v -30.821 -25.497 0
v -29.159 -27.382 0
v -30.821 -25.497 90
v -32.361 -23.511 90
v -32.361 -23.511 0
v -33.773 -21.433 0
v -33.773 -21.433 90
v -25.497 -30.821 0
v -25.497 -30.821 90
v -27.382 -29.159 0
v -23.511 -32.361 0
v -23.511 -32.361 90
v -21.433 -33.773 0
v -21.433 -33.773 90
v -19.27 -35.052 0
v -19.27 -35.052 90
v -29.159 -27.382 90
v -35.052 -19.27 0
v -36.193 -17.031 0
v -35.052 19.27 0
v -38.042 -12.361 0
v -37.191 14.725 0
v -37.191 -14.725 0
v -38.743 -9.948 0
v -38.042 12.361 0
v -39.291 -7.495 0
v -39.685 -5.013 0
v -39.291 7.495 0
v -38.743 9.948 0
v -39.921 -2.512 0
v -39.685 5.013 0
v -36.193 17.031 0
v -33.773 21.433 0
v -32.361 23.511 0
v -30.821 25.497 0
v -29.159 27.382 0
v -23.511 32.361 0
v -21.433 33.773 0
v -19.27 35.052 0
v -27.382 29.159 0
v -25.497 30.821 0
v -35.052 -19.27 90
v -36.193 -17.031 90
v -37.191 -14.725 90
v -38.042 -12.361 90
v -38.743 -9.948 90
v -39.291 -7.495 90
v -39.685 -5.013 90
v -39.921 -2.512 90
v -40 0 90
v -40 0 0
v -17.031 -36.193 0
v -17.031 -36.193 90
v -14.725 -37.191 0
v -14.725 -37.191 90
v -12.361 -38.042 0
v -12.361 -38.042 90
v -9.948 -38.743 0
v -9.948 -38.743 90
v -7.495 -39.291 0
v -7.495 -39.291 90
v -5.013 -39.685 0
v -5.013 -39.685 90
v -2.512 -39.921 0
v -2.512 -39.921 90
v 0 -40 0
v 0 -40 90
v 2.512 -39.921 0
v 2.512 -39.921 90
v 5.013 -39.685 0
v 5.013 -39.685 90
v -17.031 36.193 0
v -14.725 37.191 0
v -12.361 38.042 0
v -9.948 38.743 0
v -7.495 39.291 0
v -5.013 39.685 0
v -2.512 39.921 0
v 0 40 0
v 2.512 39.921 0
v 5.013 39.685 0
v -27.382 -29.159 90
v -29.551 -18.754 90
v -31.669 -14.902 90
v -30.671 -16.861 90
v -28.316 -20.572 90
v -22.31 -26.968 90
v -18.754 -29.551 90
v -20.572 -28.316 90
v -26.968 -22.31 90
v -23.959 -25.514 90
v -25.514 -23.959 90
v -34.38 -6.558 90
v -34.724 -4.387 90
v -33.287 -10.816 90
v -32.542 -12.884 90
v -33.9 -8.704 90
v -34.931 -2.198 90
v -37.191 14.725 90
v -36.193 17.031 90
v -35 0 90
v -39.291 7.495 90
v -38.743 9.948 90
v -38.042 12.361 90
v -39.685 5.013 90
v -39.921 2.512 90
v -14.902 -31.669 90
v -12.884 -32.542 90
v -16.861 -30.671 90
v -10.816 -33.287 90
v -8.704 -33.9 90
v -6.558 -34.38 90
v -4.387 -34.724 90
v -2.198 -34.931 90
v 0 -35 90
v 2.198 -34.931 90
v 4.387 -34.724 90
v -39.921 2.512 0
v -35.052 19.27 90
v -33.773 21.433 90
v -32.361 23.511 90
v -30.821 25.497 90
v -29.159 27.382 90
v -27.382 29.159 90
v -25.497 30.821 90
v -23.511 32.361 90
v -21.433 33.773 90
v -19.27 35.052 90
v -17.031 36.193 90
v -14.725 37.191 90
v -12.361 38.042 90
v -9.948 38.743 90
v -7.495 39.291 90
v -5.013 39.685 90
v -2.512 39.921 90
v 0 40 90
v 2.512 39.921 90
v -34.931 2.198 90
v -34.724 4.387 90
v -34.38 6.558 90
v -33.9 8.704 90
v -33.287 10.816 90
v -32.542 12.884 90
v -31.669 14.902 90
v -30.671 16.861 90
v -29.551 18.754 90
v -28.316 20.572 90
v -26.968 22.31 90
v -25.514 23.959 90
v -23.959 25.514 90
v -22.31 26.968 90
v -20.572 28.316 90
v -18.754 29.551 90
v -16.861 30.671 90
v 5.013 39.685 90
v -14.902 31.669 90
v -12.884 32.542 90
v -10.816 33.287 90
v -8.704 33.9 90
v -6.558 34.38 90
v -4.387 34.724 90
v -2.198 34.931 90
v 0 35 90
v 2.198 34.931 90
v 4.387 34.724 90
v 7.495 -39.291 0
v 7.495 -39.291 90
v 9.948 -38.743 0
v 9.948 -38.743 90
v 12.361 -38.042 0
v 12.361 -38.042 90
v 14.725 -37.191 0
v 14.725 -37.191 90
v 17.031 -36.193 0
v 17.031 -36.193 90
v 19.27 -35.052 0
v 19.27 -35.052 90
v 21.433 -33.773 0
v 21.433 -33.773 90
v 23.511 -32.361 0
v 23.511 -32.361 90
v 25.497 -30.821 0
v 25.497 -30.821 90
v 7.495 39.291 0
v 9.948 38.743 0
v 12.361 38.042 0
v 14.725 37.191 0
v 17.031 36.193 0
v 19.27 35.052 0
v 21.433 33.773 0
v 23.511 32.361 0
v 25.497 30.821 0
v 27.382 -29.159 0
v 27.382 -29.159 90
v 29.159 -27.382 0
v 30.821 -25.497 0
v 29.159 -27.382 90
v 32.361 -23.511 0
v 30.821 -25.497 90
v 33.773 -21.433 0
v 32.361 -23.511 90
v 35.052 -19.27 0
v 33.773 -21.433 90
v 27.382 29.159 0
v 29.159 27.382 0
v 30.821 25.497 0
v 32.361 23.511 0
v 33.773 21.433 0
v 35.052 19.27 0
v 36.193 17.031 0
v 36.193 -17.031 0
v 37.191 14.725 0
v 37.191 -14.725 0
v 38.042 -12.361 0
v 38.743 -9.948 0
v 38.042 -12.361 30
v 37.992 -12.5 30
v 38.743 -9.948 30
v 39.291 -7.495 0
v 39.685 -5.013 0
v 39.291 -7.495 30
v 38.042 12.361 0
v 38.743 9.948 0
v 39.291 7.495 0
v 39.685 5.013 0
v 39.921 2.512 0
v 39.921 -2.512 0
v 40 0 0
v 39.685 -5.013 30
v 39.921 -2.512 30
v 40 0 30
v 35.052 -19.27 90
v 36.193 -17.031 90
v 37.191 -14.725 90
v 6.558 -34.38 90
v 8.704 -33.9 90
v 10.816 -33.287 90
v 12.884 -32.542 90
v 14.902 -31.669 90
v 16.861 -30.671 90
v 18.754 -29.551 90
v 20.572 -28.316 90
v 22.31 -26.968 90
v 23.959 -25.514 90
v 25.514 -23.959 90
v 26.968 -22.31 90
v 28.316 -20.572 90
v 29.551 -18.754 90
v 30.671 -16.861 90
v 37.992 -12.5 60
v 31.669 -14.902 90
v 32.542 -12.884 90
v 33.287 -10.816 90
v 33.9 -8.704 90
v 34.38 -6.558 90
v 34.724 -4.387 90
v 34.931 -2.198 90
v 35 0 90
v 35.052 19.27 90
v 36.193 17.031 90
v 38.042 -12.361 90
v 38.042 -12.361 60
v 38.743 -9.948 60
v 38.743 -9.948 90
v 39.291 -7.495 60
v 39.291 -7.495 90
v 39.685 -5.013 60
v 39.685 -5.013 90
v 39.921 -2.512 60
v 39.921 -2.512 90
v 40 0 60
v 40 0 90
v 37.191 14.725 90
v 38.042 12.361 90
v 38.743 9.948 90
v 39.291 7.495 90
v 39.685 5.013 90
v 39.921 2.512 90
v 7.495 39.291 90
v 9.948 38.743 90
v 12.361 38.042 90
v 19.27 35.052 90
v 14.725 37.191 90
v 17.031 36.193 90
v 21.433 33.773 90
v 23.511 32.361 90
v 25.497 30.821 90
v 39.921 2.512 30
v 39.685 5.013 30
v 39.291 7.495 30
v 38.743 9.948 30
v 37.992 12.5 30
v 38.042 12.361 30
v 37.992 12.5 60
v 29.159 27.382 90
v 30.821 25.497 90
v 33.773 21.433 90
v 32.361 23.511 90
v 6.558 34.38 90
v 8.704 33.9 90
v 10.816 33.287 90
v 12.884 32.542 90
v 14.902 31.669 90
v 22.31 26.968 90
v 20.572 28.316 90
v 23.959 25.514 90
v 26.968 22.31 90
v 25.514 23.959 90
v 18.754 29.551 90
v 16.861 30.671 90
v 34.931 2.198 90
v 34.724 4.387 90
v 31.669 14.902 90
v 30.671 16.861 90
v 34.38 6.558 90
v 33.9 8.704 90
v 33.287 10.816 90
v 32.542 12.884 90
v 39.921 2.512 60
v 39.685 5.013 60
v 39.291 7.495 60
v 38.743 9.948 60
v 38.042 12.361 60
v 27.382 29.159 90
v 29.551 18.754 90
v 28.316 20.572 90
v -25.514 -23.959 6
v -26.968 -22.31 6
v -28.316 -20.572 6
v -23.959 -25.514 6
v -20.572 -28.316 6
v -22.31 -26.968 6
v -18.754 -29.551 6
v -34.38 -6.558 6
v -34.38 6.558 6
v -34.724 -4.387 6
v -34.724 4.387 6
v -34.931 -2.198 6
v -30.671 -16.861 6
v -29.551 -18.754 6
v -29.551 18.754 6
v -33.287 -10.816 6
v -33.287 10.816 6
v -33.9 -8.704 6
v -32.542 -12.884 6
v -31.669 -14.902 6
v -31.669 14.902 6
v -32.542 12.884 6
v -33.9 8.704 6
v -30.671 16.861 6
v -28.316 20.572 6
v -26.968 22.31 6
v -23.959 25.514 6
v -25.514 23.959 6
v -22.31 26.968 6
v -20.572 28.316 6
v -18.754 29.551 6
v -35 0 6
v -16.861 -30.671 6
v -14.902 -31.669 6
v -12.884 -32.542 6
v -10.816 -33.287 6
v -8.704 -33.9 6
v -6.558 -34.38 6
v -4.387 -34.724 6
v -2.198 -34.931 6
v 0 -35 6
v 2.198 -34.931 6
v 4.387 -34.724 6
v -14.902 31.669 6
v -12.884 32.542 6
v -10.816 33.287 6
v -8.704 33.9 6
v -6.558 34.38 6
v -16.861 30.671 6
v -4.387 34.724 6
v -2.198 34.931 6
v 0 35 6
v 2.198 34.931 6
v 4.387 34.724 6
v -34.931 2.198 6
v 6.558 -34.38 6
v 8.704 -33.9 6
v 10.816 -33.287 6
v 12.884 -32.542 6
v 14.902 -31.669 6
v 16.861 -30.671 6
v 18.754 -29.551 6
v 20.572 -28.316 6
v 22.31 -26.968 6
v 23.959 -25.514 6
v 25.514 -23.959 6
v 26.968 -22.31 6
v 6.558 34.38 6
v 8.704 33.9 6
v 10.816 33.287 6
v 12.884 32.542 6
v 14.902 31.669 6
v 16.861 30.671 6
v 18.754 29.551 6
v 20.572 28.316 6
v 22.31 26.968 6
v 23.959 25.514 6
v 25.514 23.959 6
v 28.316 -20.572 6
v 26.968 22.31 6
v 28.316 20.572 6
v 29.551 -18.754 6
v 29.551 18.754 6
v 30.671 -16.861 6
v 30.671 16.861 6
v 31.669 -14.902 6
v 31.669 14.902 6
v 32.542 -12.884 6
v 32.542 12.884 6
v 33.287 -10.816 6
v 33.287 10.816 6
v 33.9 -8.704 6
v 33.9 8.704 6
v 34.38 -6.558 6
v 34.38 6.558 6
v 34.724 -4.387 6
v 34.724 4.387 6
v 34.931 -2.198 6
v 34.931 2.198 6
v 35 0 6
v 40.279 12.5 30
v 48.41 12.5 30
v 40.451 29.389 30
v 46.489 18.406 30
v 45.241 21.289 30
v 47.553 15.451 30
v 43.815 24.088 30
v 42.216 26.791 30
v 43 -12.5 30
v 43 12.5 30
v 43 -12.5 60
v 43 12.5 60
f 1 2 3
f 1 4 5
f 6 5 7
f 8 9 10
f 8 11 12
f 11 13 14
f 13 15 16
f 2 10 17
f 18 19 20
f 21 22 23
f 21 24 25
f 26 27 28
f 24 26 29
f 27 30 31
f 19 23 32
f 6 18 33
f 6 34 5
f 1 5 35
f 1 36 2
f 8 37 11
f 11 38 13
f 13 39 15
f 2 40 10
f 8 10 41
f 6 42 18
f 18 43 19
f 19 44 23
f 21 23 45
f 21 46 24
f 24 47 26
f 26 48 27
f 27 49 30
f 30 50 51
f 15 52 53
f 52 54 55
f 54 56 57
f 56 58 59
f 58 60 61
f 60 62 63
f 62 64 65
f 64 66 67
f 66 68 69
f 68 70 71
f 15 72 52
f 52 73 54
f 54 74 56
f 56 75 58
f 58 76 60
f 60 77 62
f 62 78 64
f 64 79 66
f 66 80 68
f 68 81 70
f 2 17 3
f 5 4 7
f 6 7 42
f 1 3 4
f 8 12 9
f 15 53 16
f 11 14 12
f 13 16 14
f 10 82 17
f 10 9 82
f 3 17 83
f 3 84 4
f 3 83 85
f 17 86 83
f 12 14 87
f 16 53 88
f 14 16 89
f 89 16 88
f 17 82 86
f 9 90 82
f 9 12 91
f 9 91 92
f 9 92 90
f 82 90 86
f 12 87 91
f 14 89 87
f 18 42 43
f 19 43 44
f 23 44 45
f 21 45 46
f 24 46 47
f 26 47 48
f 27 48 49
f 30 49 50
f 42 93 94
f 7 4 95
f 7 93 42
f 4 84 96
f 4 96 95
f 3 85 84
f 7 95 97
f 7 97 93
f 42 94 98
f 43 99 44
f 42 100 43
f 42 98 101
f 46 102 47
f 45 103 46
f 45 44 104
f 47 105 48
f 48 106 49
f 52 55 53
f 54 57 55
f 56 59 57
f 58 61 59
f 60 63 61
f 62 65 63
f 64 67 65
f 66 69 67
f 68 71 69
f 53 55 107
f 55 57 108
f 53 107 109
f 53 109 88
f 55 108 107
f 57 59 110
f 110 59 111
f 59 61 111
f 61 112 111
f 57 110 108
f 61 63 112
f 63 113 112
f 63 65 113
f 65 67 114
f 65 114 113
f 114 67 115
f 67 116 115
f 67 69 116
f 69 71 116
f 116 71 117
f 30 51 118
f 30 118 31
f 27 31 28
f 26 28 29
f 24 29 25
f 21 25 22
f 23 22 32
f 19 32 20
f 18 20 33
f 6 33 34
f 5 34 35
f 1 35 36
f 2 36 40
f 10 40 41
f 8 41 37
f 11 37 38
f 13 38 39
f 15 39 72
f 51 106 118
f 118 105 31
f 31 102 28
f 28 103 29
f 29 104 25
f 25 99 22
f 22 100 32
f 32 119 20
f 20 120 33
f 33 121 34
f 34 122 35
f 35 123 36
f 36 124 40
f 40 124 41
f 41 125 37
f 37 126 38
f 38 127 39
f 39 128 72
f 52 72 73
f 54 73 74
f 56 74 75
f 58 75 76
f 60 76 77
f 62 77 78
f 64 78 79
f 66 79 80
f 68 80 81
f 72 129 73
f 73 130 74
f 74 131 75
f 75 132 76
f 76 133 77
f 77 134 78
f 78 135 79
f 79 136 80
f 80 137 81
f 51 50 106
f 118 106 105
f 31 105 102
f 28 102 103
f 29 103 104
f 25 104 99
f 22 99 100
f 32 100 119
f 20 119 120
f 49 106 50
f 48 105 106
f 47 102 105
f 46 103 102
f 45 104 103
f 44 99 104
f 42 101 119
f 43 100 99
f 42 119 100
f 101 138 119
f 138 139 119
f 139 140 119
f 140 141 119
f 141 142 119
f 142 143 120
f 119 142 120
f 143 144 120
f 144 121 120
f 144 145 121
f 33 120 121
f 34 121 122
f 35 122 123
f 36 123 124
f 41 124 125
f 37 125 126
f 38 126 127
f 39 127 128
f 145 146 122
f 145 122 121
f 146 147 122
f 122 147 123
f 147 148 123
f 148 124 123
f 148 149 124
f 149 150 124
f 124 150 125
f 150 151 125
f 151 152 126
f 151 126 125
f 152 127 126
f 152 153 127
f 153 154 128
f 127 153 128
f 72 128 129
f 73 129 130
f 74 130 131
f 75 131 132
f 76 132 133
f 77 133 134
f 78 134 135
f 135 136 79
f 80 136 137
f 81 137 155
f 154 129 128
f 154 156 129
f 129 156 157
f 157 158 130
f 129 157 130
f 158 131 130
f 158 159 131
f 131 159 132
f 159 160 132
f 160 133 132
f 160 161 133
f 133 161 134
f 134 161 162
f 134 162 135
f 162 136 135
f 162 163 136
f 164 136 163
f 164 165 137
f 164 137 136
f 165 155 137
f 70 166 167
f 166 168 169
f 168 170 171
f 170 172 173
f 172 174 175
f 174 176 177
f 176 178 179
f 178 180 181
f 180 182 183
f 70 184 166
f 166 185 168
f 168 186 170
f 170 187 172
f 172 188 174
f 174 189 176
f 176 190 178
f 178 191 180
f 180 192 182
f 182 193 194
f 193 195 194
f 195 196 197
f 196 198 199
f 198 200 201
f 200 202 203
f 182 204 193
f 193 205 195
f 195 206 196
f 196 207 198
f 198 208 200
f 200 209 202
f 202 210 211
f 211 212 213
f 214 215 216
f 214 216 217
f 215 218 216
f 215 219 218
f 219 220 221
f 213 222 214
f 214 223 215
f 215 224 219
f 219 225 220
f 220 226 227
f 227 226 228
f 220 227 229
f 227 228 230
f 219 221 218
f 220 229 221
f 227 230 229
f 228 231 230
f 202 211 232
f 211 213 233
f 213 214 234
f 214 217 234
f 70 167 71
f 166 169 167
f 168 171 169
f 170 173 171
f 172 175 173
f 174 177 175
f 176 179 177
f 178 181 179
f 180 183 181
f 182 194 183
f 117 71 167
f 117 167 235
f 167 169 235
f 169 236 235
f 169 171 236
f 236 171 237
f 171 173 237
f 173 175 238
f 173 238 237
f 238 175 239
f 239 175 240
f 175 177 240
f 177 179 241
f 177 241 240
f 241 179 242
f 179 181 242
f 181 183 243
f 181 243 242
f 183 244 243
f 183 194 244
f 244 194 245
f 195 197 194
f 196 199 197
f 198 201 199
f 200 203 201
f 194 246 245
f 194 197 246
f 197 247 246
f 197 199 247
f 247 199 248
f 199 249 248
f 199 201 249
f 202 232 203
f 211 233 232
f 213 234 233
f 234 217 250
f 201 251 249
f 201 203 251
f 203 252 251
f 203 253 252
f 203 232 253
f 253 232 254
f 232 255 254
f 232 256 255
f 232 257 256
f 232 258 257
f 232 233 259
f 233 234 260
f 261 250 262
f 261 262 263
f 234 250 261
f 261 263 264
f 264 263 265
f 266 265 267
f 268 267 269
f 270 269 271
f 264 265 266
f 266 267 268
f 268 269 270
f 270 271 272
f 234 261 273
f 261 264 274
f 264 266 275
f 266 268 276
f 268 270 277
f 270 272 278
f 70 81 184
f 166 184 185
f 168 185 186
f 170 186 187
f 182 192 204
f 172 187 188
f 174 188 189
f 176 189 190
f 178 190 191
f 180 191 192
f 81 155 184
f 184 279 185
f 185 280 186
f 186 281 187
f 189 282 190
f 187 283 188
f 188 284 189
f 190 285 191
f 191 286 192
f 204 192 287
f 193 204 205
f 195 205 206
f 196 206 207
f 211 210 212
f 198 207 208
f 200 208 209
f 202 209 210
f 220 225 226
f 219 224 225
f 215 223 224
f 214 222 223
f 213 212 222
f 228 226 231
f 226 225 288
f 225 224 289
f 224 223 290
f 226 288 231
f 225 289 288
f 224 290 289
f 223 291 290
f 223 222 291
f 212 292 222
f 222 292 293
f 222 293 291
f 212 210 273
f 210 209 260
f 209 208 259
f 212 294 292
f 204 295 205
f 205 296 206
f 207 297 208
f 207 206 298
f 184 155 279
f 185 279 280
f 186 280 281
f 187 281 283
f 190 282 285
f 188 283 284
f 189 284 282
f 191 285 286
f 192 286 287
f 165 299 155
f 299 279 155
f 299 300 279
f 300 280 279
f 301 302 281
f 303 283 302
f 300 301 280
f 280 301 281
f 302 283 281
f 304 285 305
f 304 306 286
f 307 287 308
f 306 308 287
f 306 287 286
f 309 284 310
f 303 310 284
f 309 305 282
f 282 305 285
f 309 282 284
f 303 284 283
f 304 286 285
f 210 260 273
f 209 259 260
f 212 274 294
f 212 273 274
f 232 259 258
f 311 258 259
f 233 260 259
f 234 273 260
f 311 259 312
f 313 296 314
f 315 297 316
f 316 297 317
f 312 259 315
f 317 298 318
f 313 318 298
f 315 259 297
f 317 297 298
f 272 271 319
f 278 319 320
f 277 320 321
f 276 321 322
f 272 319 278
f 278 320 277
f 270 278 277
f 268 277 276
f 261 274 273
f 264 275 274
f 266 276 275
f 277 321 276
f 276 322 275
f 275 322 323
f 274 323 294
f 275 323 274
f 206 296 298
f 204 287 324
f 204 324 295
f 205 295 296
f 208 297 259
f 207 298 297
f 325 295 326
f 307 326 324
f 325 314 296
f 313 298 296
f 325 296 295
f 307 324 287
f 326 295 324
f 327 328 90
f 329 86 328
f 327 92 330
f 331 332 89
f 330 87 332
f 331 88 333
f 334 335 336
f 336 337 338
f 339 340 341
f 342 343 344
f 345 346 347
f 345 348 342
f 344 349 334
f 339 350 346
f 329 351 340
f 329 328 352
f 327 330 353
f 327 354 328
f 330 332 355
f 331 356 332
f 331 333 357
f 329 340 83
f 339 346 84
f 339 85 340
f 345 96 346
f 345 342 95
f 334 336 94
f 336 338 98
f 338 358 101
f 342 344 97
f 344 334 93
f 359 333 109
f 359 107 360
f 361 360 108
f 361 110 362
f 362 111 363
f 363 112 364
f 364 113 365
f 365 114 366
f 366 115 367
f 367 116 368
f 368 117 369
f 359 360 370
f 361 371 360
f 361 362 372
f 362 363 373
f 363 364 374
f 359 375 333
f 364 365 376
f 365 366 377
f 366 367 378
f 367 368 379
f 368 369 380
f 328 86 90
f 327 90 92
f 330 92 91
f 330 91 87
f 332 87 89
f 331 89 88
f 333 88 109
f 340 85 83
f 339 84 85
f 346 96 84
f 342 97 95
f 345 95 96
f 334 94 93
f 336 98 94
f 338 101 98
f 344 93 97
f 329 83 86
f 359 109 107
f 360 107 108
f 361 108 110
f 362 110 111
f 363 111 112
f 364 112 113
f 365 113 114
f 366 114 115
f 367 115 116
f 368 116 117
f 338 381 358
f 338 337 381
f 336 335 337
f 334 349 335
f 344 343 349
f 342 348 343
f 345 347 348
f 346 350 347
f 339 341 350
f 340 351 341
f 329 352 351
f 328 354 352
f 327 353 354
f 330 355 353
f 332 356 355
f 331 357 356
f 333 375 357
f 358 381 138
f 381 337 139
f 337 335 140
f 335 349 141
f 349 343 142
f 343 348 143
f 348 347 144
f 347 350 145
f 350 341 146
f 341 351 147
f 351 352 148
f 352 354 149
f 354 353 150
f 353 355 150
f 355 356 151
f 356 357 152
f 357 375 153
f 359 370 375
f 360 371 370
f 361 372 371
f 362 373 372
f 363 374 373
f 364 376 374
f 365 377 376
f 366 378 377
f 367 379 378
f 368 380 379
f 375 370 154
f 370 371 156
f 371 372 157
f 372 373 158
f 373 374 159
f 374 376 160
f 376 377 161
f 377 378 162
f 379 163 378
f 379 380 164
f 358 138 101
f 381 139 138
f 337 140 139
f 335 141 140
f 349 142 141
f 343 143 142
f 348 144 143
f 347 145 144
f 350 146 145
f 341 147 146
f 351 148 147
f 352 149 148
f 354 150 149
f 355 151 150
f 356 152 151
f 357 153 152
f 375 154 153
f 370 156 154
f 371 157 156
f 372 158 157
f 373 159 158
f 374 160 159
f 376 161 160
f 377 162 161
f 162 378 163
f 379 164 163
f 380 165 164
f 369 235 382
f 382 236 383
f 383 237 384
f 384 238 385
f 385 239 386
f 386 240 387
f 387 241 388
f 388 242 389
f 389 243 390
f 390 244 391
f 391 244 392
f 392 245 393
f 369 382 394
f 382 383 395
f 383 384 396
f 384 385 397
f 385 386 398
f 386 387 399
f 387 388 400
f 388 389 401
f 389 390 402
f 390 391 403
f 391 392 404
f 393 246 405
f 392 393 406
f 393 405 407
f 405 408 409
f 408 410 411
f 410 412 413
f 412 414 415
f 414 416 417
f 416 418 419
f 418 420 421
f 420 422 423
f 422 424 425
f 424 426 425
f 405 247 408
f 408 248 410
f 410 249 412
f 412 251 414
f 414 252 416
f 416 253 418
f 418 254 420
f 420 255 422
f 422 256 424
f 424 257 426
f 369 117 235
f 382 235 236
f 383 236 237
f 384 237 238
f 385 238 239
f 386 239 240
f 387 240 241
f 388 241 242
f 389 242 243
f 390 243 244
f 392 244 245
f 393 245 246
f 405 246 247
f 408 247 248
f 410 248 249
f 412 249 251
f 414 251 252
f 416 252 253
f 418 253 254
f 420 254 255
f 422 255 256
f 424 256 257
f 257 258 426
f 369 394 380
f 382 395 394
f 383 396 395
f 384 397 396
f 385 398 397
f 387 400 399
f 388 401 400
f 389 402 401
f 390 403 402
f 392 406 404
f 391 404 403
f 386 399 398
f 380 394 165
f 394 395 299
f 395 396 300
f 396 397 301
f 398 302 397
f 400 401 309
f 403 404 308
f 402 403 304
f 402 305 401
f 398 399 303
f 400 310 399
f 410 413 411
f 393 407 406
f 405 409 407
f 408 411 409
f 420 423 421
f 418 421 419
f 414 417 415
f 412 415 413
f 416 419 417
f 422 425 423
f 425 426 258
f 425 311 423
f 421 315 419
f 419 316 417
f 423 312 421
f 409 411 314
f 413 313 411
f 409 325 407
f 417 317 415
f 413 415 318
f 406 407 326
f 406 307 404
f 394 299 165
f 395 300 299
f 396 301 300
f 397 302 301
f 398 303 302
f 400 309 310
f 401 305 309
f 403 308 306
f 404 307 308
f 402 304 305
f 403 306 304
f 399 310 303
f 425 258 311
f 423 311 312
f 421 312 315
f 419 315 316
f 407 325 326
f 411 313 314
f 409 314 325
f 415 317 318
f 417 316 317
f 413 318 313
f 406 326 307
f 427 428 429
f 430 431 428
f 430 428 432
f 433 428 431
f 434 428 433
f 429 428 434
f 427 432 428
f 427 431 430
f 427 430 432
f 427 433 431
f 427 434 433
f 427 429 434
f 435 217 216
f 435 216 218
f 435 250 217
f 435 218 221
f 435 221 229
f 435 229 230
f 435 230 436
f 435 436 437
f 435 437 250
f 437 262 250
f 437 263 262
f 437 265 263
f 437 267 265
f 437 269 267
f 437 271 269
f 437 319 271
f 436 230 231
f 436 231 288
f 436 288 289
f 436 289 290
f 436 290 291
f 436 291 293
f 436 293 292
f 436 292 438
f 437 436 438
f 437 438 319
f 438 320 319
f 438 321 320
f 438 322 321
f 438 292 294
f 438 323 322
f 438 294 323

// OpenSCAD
// マグカップ本体
module mug() {
    difference() {
        // 外側円筒：外径80mm(半径40mm)、高さ90mm
        cylinder(h = 90, r = 40, center = false, $fn = 100);
        
        // 内側の空洞：底面6mm残す
        translate([0, 0, 6]) {
            cylinder(h = 84, r = 35, center = false, $fn = 100);
        }
    }
}

// D字形取手
module handle() {
    // 取手の内側寸法：高さ30mm、幅25mm
    handle_inner_height = 30;
    handle_inner_width = 25;
    handle_inner_depth = 20;  // 指が入る奥行き
    
    // 取手開始高さ(マグの中央付近)
    handle_z = (90 - handle_inner_height) / 2;  // 30mm
    
    // 取手の外側半径
    handle_outer_r = 50;  // 外側が円形で本体から十分に離れる
    
    union() {
        // 本体側の直線部分（接続部）
        translate([35, -handle_inner_width/2, handle_z]) {
            cube([8, handle_inner_width, handle_inner_height]);
        }
        
        // 外側の半円形部分
        difference() {
            // 取手全体の円形セクション（X >= 40の部分）
            intersection() {
                cylinder(h = handle_inner_height, r = handle_outer_r, center = false, $fn = 100);
                translate([0, 0, handle_z]) {
                    cube([200, 200, handle_inner_height]);
                }
                // +X軸側のみ
                translate([40, -200, handle_z]) {
                    cube([200, 400, handle_inner_height]);
                }
            }
            
            // 内側をくり抜く：D字形状の内側空間
            translate([40, -handle_inner_width/2, handle_z - 0.5]) {
                cube([handle_inner_depth + 1, handle_inner_width, handle_inner_height + 1]);
            }
            
            // マグ本体との干渉部分を削除
            translate([0, 0, handle_z - 1]) {
                cylinder(h = handle_inner_height + 2, r = 40, center = false, $fn = 100);
            }
        }
    }
}

// 完成品
union() {
    mug();
    handle();
}
